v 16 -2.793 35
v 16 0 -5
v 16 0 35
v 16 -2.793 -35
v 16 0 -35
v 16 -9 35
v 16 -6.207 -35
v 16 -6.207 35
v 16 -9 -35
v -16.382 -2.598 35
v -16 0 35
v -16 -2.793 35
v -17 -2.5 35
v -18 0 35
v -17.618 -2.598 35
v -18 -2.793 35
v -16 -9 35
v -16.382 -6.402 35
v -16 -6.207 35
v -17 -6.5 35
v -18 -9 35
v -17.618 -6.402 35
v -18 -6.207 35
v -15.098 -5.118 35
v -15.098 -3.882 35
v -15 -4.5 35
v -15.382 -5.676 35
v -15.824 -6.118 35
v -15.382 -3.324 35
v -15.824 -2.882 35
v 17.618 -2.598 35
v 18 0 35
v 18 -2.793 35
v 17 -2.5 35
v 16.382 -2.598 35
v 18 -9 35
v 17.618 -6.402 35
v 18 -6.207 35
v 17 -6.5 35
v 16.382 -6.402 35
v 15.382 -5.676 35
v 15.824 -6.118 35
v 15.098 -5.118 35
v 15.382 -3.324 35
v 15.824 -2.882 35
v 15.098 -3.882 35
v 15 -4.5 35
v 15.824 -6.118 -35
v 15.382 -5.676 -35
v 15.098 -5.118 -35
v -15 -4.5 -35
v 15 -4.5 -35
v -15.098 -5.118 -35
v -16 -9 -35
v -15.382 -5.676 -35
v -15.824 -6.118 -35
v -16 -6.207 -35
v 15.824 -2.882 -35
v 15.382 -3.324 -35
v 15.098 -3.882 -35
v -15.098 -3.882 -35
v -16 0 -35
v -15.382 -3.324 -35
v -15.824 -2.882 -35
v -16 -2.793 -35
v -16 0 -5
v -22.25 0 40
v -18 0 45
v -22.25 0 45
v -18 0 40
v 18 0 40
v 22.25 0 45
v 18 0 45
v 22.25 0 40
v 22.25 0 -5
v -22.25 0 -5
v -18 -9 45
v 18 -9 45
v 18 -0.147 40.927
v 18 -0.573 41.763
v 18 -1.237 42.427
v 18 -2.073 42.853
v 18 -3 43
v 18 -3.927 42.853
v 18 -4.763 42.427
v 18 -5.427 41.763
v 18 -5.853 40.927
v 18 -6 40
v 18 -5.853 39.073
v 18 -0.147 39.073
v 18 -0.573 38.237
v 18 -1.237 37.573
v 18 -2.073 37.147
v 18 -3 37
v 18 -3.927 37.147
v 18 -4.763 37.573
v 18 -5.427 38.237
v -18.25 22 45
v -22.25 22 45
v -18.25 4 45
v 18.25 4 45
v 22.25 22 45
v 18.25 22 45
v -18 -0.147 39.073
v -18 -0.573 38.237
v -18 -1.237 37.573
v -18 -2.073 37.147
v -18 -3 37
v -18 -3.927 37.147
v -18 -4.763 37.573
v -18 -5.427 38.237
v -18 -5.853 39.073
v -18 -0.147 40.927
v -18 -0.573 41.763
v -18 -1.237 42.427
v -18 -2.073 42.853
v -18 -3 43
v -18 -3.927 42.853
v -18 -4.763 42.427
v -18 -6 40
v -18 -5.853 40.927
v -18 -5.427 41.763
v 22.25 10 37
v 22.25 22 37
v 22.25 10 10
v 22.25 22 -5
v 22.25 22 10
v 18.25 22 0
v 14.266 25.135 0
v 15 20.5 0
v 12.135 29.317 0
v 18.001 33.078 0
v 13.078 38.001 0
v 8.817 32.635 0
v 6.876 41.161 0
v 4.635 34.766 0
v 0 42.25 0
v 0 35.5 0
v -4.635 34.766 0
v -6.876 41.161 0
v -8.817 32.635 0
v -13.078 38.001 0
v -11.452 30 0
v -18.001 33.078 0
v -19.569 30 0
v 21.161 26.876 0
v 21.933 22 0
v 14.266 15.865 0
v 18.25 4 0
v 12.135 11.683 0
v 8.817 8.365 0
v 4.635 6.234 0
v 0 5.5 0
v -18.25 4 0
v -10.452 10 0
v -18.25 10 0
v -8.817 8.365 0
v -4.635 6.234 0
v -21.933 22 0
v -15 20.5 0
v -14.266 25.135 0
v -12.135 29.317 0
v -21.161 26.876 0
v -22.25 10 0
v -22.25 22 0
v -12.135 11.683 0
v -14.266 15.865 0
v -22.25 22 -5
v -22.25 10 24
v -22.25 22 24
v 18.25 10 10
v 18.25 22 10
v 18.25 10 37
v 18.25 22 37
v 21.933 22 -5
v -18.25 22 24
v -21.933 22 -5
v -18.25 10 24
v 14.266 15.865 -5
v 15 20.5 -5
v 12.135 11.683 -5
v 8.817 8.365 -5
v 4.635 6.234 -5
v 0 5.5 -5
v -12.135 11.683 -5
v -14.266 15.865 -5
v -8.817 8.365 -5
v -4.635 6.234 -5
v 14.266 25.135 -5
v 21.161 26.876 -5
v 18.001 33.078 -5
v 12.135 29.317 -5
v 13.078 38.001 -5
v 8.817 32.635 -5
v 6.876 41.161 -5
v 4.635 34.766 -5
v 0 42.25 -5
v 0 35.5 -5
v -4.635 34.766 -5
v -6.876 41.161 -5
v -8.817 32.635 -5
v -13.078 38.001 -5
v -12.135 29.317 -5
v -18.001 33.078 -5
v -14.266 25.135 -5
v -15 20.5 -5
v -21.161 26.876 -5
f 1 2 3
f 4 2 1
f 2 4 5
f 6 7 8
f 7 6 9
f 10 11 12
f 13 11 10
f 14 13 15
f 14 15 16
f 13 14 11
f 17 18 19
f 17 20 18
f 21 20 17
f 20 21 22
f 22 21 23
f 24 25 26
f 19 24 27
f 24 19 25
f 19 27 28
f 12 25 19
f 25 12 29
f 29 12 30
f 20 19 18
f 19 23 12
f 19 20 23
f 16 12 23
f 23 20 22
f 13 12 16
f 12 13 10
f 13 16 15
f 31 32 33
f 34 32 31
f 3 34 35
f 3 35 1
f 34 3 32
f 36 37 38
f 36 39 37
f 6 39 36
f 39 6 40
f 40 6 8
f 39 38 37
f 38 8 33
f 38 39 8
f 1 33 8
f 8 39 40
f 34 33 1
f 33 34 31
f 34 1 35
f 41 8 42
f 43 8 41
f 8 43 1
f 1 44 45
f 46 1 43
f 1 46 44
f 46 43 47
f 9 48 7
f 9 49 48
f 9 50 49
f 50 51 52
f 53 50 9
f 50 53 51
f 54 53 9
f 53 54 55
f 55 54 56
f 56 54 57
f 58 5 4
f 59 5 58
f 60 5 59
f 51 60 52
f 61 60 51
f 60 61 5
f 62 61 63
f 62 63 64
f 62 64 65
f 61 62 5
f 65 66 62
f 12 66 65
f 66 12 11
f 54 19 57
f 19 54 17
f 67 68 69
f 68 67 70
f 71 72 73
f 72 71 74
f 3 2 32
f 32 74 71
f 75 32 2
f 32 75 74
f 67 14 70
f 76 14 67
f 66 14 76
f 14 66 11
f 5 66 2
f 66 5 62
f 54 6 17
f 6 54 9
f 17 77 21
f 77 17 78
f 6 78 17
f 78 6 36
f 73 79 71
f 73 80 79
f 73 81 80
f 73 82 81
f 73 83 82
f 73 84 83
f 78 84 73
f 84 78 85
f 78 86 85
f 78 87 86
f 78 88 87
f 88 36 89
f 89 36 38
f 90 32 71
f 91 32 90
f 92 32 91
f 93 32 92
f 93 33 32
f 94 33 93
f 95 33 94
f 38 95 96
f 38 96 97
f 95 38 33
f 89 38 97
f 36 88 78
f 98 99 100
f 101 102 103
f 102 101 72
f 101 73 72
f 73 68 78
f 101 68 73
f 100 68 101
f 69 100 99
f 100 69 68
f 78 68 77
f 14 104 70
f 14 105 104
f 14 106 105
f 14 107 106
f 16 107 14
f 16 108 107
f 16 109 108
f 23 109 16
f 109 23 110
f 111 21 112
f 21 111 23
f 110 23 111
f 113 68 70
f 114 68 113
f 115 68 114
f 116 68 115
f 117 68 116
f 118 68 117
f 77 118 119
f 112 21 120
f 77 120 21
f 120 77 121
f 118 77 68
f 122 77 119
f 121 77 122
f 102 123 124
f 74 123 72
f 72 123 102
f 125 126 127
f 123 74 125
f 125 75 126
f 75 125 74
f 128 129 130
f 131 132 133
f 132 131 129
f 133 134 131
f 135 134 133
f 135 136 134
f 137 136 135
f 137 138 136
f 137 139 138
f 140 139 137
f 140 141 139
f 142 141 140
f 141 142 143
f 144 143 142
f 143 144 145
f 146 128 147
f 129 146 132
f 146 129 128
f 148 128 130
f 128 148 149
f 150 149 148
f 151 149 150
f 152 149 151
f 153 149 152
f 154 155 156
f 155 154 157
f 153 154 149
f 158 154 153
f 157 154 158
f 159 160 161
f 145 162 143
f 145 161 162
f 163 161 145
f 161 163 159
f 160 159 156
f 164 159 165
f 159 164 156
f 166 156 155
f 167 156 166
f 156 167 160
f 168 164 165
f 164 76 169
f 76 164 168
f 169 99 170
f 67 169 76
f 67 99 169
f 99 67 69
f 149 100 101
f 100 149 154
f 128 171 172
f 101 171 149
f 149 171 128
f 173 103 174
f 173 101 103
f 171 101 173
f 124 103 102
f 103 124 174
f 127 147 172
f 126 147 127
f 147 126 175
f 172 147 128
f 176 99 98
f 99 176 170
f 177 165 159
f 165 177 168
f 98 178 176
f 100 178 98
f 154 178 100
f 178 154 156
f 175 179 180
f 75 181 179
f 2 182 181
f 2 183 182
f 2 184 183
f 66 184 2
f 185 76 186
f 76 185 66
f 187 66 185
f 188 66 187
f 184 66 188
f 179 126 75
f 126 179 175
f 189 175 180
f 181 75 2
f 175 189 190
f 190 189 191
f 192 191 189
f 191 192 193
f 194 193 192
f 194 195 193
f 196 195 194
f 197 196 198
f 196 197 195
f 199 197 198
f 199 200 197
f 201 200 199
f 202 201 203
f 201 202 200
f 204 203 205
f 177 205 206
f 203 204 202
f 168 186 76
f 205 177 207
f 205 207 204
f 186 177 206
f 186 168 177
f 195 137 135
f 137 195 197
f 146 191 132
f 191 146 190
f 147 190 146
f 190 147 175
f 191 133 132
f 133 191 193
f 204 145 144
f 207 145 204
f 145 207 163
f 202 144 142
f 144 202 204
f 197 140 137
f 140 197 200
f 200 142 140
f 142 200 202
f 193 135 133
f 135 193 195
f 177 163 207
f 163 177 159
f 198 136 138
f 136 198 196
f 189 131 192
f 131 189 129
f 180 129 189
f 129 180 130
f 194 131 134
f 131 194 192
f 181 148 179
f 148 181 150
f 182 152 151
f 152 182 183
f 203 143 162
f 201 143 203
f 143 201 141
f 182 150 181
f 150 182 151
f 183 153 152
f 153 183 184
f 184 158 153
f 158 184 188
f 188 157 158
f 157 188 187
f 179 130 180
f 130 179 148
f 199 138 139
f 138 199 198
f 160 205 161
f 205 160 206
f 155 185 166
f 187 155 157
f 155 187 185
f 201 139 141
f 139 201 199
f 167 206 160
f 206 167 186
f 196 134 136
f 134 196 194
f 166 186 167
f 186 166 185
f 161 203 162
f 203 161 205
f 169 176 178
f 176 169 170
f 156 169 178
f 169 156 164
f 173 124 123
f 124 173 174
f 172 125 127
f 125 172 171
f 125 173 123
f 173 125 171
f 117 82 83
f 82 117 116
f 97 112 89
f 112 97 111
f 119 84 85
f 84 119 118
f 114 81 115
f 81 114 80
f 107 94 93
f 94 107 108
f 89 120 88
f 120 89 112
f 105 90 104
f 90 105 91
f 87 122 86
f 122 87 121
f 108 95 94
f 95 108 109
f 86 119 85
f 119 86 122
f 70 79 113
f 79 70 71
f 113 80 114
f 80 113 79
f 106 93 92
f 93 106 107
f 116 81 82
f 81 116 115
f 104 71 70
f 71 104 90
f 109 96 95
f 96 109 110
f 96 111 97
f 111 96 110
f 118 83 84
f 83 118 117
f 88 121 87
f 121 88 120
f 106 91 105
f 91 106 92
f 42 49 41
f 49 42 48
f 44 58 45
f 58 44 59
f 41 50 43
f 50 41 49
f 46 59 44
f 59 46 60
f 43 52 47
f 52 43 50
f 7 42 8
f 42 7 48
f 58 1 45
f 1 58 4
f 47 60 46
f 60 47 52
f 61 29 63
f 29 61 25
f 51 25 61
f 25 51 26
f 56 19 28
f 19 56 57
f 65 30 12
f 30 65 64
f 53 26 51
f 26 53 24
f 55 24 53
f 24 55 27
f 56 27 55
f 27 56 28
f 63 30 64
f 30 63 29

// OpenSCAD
T = 4;//upright thickness
ST = 4; // side thickness
SW = T+18; // side width
H = 45; // upright height
$fn=20;
CUTLH=12+15; // cutout left actual=12
CUTRLH=9+15; // cutout right actual=9
TORCHW=36.5; // torch width

// slot in part
difference() {
    union() {
        translate([0,-4.5,0]) {
            cube([32,9,70], center=true);
            translate([0,0,35+5])cube([36,9,10], center=true); // top sticky-out bit
        }
        translate([0,T/2,H/2]) cube([TORCHW+ST*2,T,H], center=true); // upright
        translate([(ST/2)+(TORCHW/2),SW/2,H/2]) cube([ST,SW,H], center=true); // sides
        translate([-(ST/2)-(TORCHW/2),SW/2,H/2]) cube([ST,SW,H], center=true); // sides
        translate([0,SW/2,-2.5]) cube([TORCHW+ST*2,SW,5], center=true); // bottom plate
        translate([0,20,-2.5]) cylinder(h=5,center=true,r = (TORCHW+ST*2)/2); // bottom plate
    }
   union() {
      translate([0,T+3+27/2,-1]) cylinder(r=30/2,h=10,center=true); // hole
      translate([-18,20,CUTRLH/2]) cube([20,20,CUTRLH], center=true); // cutout for wire clip
      translate([18,20,10+(CUTLH/2)]) cube([20,20,CUTLH], center=true); // cutout for lens screws
      translate([0,-3,H-5]) rotate([0,90,0]) cylinder(r=3,h=100,center=true); // hole
      translate([17,-4.5,0]) cylinder(r=2,h=70,center=true); // slot
      translate([-17,-4.5,0]) cylinder(r=2,h=70,center=true); // slot
   }
}
